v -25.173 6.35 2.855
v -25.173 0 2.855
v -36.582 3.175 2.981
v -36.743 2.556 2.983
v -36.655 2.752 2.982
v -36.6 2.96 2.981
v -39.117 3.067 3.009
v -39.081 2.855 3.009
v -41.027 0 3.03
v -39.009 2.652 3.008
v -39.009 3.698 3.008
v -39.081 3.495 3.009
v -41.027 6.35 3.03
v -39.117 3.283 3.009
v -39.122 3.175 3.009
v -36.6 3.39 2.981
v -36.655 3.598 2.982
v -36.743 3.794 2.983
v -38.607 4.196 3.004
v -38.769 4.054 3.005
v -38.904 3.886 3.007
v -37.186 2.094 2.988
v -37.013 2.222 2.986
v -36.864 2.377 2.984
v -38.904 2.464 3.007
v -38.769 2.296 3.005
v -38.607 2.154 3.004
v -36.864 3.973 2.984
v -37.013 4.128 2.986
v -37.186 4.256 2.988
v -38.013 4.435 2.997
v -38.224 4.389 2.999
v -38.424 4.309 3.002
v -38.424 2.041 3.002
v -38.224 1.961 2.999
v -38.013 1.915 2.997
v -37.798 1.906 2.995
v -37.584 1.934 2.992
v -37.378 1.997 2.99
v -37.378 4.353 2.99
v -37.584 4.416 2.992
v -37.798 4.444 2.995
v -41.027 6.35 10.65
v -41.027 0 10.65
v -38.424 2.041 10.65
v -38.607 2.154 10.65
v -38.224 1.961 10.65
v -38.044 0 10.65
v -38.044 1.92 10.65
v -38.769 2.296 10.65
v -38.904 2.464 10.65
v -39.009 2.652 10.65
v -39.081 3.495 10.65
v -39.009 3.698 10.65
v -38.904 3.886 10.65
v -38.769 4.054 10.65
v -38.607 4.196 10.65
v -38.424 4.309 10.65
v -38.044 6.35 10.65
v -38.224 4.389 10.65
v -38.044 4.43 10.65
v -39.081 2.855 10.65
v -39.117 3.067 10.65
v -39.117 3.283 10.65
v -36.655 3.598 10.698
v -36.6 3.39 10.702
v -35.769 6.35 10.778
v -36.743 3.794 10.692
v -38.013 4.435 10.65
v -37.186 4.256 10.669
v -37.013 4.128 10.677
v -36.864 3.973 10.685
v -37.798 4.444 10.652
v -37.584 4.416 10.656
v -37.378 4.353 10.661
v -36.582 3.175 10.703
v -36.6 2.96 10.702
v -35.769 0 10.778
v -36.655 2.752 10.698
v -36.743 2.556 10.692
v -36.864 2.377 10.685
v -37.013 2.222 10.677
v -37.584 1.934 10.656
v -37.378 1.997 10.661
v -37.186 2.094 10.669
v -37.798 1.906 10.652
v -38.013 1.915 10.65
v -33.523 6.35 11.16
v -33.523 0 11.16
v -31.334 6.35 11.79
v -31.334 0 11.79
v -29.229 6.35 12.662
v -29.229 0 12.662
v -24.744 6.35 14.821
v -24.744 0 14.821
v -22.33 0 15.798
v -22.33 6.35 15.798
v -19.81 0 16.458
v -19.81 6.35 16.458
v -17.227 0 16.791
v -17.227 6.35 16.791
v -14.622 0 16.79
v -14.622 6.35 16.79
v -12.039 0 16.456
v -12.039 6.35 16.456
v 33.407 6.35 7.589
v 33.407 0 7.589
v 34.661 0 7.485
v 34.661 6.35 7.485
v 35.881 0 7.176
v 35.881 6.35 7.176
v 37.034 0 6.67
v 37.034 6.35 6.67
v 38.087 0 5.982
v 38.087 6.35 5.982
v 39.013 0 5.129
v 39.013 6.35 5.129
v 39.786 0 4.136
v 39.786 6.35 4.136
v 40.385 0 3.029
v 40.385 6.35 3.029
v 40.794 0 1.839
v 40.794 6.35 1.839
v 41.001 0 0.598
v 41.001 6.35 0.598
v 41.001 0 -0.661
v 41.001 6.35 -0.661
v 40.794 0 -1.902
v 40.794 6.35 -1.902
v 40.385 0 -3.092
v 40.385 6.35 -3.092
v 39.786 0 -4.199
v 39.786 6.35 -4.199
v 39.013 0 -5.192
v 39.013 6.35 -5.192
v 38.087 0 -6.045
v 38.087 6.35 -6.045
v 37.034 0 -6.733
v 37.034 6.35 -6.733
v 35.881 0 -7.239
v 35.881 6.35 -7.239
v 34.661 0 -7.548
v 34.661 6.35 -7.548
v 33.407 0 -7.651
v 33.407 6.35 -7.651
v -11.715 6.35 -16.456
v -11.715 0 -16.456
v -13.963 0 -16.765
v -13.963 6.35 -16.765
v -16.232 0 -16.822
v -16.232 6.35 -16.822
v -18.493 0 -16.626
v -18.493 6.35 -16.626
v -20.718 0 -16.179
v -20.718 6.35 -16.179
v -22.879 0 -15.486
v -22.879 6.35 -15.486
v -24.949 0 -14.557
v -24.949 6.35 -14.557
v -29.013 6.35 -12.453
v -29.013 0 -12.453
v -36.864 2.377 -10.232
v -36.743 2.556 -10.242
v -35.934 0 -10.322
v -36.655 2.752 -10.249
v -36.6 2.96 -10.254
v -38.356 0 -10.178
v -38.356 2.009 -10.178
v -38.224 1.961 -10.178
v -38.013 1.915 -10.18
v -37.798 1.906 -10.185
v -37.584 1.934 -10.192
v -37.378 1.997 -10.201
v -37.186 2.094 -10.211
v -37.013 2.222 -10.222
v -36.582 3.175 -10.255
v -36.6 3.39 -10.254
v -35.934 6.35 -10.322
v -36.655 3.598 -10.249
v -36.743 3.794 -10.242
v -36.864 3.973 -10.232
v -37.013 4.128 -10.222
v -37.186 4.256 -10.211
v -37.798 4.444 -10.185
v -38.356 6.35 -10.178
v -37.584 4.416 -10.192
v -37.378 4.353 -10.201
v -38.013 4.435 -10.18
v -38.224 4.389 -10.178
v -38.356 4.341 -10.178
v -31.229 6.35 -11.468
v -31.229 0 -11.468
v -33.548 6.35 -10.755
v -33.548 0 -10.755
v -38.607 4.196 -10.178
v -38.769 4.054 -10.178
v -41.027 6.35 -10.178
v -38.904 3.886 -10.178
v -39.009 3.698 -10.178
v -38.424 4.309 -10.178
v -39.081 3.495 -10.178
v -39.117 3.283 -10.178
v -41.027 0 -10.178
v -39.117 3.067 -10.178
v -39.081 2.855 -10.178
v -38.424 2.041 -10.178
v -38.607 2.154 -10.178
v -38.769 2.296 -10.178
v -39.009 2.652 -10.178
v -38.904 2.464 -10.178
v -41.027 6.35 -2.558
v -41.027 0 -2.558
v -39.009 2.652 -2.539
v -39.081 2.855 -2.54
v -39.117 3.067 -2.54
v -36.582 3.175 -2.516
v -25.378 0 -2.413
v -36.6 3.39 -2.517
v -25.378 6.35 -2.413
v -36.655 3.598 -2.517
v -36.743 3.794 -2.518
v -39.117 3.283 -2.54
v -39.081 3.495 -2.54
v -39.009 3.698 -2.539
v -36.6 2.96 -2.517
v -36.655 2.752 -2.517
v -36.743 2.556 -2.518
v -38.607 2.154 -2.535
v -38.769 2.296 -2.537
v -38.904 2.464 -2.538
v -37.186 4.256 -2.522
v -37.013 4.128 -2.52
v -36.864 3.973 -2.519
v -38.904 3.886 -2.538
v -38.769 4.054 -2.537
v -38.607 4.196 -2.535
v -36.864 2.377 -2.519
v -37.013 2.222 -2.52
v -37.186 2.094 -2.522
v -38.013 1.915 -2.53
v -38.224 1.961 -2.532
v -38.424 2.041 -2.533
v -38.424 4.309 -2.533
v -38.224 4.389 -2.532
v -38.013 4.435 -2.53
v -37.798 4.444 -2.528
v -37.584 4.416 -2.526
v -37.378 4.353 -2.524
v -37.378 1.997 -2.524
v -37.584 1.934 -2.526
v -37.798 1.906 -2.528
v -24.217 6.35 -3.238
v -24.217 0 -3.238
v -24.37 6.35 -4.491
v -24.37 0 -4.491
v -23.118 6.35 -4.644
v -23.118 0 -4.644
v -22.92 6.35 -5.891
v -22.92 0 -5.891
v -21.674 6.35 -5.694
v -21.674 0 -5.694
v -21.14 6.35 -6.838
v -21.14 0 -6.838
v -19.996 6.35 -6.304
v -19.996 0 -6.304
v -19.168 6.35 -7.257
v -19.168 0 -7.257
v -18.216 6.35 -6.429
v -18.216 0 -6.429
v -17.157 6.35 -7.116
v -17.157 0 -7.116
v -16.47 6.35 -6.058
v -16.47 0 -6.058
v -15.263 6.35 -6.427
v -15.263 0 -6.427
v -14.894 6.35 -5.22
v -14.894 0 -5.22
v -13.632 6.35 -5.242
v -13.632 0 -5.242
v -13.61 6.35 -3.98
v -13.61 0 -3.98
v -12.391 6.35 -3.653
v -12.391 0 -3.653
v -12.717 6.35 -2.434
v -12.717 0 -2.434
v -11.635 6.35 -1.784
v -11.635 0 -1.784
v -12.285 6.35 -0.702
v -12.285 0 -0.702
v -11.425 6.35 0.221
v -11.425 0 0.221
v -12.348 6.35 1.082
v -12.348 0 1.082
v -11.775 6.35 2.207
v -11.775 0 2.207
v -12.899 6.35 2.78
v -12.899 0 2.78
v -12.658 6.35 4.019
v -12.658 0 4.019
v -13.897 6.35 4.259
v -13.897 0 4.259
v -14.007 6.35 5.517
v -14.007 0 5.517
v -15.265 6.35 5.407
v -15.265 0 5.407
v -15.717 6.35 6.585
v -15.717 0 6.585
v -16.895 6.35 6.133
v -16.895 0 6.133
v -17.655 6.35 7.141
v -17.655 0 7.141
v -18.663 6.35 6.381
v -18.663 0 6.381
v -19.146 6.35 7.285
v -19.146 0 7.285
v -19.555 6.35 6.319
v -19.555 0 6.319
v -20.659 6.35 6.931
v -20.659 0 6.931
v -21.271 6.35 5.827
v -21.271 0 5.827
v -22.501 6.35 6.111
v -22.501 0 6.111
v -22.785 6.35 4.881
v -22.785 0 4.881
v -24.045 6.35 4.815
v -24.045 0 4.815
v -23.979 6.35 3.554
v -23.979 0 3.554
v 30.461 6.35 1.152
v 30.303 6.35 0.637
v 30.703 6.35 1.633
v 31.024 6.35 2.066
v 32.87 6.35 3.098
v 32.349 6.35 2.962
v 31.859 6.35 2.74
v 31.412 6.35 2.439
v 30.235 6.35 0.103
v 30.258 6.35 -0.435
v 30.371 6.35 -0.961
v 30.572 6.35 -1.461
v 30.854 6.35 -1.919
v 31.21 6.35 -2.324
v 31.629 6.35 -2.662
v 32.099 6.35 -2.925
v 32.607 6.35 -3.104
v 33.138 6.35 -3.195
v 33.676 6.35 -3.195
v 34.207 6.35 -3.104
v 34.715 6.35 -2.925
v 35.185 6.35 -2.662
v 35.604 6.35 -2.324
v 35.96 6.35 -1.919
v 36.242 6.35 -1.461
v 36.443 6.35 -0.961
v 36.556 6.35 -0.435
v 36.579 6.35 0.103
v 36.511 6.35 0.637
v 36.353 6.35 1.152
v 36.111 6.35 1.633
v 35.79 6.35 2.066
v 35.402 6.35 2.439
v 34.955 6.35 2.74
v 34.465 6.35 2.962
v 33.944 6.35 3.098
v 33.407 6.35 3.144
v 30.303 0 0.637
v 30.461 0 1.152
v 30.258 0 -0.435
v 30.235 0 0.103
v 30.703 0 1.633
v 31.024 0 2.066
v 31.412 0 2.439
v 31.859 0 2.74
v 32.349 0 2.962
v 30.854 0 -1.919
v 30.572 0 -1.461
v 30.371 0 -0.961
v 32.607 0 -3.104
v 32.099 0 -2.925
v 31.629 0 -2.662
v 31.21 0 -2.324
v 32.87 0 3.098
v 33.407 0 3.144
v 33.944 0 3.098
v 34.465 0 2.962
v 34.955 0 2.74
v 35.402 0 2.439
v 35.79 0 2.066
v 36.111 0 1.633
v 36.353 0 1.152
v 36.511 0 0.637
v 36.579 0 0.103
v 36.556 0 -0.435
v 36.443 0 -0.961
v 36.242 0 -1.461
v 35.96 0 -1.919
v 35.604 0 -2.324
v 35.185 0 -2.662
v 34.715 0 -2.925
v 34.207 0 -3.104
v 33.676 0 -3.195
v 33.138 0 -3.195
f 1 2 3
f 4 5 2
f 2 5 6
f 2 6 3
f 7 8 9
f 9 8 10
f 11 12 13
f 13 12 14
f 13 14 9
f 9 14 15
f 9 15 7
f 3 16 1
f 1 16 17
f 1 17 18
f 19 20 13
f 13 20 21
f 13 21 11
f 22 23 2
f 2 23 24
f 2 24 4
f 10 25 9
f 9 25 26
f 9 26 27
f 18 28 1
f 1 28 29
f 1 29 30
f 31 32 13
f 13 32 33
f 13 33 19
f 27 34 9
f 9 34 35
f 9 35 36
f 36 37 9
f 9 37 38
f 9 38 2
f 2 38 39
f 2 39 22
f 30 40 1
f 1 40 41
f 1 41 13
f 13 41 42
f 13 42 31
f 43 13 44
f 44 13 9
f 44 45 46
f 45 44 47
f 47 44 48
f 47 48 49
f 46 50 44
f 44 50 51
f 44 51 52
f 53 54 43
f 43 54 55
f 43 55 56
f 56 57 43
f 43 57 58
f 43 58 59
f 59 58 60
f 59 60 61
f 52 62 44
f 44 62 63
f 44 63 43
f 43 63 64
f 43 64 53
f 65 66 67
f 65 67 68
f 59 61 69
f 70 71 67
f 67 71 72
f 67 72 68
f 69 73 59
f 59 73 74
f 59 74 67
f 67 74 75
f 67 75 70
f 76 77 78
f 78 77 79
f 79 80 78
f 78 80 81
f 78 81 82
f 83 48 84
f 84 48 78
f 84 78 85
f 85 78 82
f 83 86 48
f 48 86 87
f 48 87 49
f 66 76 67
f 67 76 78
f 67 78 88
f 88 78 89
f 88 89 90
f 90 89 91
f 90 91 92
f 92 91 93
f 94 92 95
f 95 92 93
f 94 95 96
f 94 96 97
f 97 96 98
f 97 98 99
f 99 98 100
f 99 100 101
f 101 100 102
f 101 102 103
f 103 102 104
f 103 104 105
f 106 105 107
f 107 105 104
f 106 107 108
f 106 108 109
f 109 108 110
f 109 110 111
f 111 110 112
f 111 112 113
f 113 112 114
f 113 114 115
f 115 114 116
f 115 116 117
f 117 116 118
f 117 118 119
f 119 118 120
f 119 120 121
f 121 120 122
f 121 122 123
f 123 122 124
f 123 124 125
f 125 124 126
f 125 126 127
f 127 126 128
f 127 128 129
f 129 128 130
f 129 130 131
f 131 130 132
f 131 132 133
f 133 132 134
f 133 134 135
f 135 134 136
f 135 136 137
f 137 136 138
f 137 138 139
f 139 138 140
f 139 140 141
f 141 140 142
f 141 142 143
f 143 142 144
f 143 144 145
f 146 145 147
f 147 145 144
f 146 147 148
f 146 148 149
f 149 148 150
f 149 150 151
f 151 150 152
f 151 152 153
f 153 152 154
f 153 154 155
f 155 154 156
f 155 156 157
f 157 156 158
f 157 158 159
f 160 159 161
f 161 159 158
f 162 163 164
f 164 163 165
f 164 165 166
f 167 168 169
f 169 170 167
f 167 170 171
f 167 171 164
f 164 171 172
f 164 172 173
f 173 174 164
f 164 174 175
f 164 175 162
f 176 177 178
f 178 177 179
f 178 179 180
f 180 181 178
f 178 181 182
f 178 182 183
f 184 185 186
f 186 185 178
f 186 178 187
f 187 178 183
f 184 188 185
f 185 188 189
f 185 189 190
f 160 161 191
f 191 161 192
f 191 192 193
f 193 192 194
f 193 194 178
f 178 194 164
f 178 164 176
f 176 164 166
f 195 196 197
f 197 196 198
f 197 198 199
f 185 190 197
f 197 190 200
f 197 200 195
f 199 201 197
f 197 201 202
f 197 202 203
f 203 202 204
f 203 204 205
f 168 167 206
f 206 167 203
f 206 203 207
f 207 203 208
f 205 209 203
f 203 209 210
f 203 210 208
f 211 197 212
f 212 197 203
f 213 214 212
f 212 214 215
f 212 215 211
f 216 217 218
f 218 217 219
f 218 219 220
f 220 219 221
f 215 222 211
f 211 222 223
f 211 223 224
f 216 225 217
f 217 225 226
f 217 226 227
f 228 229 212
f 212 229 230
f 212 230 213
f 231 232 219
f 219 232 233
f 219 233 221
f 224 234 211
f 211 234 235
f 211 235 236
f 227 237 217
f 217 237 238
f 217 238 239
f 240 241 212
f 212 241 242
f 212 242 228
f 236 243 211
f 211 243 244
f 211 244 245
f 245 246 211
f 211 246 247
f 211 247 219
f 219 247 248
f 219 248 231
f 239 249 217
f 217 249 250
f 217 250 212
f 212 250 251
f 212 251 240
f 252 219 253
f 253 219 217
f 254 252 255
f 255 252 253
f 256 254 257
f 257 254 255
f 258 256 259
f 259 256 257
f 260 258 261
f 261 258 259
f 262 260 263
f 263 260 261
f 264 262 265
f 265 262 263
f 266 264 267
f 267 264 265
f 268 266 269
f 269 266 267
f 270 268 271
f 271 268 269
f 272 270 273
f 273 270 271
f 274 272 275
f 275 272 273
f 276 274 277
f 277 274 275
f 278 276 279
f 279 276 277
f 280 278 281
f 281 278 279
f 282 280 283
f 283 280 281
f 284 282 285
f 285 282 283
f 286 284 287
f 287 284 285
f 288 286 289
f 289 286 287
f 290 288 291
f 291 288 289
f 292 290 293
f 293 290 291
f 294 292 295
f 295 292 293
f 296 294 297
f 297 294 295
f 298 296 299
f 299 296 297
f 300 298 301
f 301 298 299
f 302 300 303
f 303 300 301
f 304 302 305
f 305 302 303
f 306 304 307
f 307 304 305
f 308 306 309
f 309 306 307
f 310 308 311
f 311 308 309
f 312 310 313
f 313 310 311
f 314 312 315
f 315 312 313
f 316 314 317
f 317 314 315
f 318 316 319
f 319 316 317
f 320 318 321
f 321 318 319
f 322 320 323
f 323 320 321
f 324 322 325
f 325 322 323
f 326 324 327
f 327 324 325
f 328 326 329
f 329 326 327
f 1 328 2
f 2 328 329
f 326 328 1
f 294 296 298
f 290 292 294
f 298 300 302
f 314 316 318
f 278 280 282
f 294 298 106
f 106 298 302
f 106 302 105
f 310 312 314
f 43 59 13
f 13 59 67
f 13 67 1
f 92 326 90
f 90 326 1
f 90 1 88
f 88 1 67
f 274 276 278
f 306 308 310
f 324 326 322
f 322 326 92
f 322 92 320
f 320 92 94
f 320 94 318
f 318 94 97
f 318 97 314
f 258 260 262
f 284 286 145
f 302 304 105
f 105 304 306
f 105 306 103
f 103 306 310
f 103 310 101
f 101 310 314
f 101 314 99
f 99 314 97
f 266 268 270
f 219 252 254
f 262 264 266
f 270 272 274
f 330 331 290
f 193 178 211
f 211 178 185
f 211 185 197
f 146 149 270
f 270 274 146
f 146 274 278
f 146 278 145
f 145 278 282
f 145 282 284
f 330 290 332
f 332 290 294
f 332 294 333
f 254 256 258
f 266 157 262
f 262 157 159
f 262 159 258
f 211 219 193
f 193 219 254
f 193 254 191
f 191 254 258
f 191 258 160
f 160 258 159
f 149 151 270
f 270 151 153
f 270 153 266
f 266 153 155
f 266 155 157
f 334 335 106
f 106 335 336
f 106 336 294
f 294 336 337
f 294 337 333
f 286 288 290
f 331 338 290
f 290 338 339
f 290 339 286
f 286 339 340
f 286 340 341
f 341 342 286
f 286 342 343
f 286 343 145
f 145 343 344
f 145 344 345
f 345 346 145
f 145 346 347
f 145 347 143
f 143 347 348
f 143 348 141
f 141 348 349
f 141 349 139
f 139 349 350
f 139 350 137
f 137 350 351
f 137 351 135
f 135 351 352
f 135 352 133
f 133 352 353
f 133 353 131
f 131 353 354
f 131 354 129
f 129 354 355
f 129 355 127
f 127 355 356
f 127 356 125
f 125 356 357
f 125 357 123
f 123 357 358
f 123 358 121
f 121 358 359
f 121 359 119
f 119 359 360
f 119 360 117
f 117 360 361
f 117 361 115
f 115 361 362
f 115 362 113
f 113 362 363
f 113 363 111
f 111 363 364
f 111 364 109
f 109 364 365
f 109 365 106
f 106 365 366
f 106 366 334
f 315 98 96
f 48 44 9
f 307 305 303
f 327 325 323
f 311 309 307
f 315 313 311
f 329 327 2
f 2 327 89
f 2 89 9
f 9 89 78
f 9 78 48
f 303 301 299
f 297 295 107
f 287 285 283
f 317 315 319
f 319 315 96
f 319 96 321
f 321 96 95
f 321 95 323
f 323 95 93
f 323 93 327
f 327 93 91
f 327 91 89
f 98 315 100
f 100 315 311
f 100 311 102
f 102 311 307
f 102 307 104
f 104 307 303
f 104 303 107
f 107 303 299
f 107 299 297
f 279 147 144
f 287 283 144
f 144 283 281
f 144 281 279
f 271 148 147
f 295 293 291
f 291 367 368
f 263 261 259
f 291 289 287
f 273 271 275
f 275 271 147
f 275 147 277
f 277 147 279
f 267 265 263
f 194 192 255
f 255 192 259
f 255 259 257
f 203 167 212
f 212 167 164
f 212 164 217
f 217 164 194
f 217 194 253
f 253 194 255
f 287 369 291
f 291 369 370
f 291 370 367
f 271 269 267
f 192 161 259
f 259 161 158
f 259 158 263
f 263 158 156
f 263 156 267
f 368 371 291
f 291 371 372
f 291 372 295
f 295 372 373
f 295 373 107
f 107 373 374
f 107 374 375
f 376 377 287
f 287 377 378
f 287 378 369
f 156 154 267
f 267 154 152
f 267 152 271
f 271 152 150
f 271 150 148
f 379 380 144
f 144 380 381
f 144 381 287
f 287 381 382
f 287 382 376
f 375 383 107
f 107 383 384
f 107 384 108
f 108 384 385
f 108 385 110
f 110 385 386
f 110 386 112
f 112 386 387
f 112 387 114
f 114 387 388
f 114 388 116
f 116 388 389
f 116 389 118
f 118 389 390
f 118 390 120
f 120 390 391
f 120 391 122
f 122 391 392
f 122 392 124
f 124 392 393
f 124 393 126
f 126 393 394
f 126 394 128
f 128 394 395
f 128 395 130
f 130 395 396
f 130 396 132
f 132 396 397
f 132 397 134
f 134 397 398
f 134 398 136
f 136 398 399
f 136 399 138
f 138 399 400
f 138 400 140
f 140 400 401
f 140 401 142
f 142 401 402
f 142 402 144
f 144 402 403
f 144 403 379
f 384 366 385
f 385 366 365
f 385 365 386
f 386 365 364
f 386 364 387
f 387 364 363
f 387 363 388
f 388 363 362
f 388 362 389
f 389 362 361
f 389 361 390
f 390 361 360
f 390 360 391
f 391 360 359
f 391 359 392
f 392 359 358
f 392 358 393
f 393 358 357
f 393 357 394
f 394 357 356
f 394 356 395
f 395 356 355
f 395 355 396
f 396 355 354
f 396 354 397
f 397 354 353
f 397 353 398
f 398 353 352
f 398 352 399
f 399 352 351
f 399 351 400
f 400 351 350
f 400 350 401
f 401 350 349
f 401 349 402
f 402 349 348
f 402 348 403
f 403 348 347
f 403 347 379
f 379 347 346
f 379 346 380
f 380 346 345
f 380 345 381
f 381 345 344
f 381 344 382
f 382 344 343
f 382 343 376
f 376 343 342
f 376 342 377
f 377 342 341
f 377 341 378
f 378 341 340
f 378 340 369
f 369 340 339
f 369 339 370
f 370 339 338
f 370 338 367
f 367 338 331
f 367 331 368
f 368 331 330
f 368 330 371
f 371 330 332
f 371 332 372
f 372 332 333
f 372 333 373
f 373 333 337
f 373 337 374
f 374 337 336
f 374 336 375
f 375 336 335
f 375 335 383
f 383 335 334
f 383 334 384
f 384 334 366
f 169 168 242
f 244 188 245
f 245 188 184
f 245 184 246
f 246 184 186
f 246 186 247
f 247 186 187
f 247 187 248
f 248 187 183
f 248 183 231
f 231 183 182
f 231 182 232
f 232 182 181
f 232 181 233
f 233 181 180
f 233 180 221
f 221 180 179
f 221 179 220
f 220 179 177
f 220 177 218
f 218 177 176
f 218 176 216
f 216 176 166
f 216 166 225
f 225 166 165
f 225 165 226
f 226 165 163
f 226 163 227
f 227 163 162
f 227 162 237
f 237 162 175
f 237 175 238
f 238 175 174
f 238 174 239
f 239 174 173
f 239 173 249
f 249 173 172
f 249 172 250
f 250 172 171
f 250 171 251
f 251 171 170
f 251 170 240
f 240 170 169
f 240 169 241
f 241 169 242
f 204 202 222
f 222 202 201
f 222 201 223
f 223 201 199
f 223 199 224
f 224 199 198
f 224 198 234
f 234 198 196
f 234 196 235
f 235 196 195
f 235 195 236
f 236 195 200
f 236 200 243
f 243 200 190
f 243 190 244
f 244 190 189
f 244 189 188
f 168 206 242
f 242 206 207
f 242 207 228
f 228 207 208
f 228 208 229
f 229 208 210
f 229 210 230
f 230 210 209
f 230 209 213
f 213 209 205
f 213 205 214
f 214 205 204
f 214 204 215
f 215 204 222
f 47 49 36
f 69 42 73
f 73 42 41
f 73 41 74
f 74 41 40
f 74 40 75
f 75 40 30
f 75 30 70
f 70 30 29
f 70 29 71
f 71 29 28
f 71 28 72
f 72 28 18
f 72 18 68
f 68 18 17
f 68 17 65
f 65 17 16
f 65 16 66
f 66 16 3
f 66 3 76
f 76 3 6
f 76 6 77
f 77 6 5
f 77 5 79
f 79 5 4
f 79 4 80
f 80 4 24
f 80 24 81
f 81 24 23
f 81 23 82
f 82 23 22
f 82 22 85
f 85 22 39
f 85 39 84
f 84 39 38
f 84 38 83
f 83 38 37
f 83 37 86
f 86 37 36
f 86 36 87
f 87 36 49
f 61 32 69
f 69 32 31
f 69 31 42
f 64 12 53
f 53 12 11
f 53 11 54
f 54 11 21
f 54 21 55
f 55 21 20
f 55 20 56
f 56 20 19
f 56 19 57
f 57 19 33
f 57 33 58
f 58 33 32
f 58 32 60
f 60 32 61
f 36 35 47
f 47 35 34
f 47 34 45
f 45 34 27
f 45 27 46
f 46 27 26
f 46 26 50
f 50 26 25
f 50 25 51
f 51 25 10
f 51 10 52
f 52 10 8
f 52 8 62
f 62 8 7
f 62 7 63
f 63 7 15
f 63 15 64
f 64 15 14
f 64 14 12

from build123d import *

# Parameters (mm, degrees)
BOSS_EXTRUDE1_DEPTH     = 6.35
CUT_EXTRUDE1_REACH      = 46.798
SKETCH2_R               = 3.175
CUT_EXTRUDE2_DEPTH      = 45.797927572
CUT_EXTRUDE2_DEPTH_BACK = 45.797927572
SKETCH3_R               = 1.27


with BuildPart() as part:
    # Sketch1 → Boss-Extrude1 (new body)
    with BuildSketch(Plane(origin=(0, 0, 0), x_dir=(1, 0, 0), z_dir=(0, 1, 0))):
        with BuildLine():
            Line((-25.172750094, -2.854782141), (-23.979365131, -3.554335257))
            Line((-23.979365131, -3.554335257), (-24.045420885, -4.814754144))
            Line((-24.045420885, -4.814754144), (-22.785001999, -4.880809899))
            Line((-22.785001999, -4.880809899), (-22.501080336, -6.110609729))
            Line((-22.501080336, -6.110609729), (-21.271280506, -5.826688067))
            Line((-21.271280506, -5.826688067), (-20.659378714, -6.930588121))
            Line((-20.659378714, -6.930588121), (-19.555478659, -6.318686329))
            Line((-19.555478659, -6.318686329), (-19.145844879, -7.284635532))
            Line((-19.145844879, -7.284635532), (-18.663004813, -6.38109418))
            Line((-18.663004813, -6.38109418), (-17.655008108, -7.140674179))
            Line((-17.655008108, -7.140674179), (-16.895428108, -6.132677474))
            Line((-16.895428108, -6.132677474), (-15.717110864, -6.584991086))
            Line((-15.717110864, -6.584991086), (-15.264797252, -5.406673842))
            Line((-15.264797252, -5.406673842), (-14.00745149, -5.516677342))
            Line((-14.00745149, -5.516677342), (-13.89744799, -4.259331581))
            Line((-13.89744799, -4.259331581), (-12.658488598, -4.018502271))
            Line((-12.658488598, -4.018502271), (-12.899317907, -2.779542878))
            Line((-12.899317907, -2.779542878), (-11.774735254, -2.206539397))
            Line((-11.774735254, -2.206539397), (-12.347738736, -1.081956744))
            Line((-12.347738736, -1.081956744), (-11.424661673, -0.221173456))
            Line((-11.424661673, -0.221173456), (-12.28544496, 0.701903607))
            Line((-12.28544496, 0.701903607), (-11.635390366, 1.783776131))
            Line((-11.635390366, 1.783776131), (-12.717262889, 2.433830725))
            Line((-12.717262889, 2.433830725), (-12.390594789, 3.652972671))
            Line((-12.390594789, 3.652972671), (-13.609736736, 3.979640771))
            Line((-13.609736736, 3.979640771), (-13.631764267, 5.241597158))
            Line((-13.631764267, 5.241597158), (-14.893720653, 5.219569627))
            Line((-14.893720653, 5.219569627), (-15.262737196, 6.426568353))
            Line((-15.262737196, 6.426568353), (-16.469735922, 6.05755181))
            Line((-16.469735922, 6.05755181), (-17.157151327, 7.116078708))
            Line((-17.157151327, 7.116078708), (-18.215678225, 6.428663303))
            Line((-18.215678225, 6.428663303), (-19.168233878, 7.256707299))
            Line((-19.168233878, 7.256707299), (-19.996277875, 6.304151646))
            Line((-19.996277875, 6.304151646), (-21.140172995, 6.837558701))
            Line((-21.140172995, 6.837558701), (-21.67358005, 5.69366358))
            Line((-21.67358005, 5.69366358), (-22.920189524, 5.891107124))
            Line((-22.920189524, 5.891107124), (-23.117633068, 4.64449765))
            Line((-23.117633068, 4.64449765), (-24.370373821, 4.490680427))
            Line((-24.370373821, 4.490680427), (-24.216556598, 3.237939674))
            Line((-24.216556598, 3.237939674), (-25.378370526, 2.412676209))
            Line((-25.378370526, 2.412676209), (-41.02702196, 2.557572596))
            Line((-41.02702196, 2.557572596), (-41.02702196, 10.177572596))
            Line((-41.02702196, 10.177572596), (-38.355583111, 10.177572596))
            ThreePointArc((-38.355583111, 10.177572596), (-33.547545085, 10.754594848), (-29.012572504, 12.452890476))
            Line((-29.012572504, 12.452890476), (-24.949455261, 14.556654192))
            ThreePointArc((-24.949455261, 14.556654192), (-18.492857296, 16.625923003), (-11.714907277, 16.455851756))
            Line((-11.714907277, 16.455851756), (33.40702196, 7.651462795))
            ThreePointArc((33.40702196, 7.651462795), (41.02702196, 0.031462795), (33.40702196, -7.588537205))
            Line((33.40702196, -7.588537205), (-12.038677684, -16.4558708))
            ThreePointArc((-12.038677684, -16.4558708), (-18.523682802, -16.66577615), (-24.744249109, -14.820808279))
            Line((-24.744249109, -14.820808279), (-29.229404705, -12.661591197))
            ThreePointArc((-29.229404705, -12.661591197), (-33.523201838, -11.159597642), (-38.043536354, -10.650427404))
            Line((-38.043536354, -10.650427404), (-41.02702196, -10.650427404))
            Line((-41.02702196, -10.650427404), (-41.02702196, -3.030427404))
            Line((-41.02702196, -3.030427404), (-25.172750094, -2.854782141))
        make_face()
    extrude(amount=BOSS_EXTRUDE1_DEPTH)

    # Sketch2 → Cut-Extrude1 (cut, up to next)
    with BuildSketch(Plane(origin=(0, 6.35, 0), x_dir=(1, 0, 0), z_dir=(0, 1, 0)), mode=Mode.PRIVATE) as cut_extrude1_sk1:
        with Locations(Location((33.40702196, 0.031462795, 0), (0, 0, 270))):
            Circle(SKETCH2_R)
    cut_extrude1_tool1 = extrude(cut_extrude1_sk1.sketch, amount=-CUT_EXTRUDE1_REACH, mode=Mode.PRIVATE) & part.part
    add(cut_extrude1_tool1.solids().sort_by_distance((33.407022, 6.35, -0.031463))[0], mode=Mode.SUBTRACT)

    # Sketch3 → Cut-Extrude2 (cut, two sides: drawn at the far end of the back side and taken through both)
    with BuildSketch(Plane.XY.offset(-CUT_EXTRUDE2_DEPTH_BACK)):
        with Locations((-37.85202196, 3.175)):
            Circle(SKETCH3_R)
    extrude(amount=CUT_EXTRUDE2_DEPTH + CUT_EXTRUDE2_DEPTH_BACK, mode=Mode.SUBTRACT)


solid = part.part
